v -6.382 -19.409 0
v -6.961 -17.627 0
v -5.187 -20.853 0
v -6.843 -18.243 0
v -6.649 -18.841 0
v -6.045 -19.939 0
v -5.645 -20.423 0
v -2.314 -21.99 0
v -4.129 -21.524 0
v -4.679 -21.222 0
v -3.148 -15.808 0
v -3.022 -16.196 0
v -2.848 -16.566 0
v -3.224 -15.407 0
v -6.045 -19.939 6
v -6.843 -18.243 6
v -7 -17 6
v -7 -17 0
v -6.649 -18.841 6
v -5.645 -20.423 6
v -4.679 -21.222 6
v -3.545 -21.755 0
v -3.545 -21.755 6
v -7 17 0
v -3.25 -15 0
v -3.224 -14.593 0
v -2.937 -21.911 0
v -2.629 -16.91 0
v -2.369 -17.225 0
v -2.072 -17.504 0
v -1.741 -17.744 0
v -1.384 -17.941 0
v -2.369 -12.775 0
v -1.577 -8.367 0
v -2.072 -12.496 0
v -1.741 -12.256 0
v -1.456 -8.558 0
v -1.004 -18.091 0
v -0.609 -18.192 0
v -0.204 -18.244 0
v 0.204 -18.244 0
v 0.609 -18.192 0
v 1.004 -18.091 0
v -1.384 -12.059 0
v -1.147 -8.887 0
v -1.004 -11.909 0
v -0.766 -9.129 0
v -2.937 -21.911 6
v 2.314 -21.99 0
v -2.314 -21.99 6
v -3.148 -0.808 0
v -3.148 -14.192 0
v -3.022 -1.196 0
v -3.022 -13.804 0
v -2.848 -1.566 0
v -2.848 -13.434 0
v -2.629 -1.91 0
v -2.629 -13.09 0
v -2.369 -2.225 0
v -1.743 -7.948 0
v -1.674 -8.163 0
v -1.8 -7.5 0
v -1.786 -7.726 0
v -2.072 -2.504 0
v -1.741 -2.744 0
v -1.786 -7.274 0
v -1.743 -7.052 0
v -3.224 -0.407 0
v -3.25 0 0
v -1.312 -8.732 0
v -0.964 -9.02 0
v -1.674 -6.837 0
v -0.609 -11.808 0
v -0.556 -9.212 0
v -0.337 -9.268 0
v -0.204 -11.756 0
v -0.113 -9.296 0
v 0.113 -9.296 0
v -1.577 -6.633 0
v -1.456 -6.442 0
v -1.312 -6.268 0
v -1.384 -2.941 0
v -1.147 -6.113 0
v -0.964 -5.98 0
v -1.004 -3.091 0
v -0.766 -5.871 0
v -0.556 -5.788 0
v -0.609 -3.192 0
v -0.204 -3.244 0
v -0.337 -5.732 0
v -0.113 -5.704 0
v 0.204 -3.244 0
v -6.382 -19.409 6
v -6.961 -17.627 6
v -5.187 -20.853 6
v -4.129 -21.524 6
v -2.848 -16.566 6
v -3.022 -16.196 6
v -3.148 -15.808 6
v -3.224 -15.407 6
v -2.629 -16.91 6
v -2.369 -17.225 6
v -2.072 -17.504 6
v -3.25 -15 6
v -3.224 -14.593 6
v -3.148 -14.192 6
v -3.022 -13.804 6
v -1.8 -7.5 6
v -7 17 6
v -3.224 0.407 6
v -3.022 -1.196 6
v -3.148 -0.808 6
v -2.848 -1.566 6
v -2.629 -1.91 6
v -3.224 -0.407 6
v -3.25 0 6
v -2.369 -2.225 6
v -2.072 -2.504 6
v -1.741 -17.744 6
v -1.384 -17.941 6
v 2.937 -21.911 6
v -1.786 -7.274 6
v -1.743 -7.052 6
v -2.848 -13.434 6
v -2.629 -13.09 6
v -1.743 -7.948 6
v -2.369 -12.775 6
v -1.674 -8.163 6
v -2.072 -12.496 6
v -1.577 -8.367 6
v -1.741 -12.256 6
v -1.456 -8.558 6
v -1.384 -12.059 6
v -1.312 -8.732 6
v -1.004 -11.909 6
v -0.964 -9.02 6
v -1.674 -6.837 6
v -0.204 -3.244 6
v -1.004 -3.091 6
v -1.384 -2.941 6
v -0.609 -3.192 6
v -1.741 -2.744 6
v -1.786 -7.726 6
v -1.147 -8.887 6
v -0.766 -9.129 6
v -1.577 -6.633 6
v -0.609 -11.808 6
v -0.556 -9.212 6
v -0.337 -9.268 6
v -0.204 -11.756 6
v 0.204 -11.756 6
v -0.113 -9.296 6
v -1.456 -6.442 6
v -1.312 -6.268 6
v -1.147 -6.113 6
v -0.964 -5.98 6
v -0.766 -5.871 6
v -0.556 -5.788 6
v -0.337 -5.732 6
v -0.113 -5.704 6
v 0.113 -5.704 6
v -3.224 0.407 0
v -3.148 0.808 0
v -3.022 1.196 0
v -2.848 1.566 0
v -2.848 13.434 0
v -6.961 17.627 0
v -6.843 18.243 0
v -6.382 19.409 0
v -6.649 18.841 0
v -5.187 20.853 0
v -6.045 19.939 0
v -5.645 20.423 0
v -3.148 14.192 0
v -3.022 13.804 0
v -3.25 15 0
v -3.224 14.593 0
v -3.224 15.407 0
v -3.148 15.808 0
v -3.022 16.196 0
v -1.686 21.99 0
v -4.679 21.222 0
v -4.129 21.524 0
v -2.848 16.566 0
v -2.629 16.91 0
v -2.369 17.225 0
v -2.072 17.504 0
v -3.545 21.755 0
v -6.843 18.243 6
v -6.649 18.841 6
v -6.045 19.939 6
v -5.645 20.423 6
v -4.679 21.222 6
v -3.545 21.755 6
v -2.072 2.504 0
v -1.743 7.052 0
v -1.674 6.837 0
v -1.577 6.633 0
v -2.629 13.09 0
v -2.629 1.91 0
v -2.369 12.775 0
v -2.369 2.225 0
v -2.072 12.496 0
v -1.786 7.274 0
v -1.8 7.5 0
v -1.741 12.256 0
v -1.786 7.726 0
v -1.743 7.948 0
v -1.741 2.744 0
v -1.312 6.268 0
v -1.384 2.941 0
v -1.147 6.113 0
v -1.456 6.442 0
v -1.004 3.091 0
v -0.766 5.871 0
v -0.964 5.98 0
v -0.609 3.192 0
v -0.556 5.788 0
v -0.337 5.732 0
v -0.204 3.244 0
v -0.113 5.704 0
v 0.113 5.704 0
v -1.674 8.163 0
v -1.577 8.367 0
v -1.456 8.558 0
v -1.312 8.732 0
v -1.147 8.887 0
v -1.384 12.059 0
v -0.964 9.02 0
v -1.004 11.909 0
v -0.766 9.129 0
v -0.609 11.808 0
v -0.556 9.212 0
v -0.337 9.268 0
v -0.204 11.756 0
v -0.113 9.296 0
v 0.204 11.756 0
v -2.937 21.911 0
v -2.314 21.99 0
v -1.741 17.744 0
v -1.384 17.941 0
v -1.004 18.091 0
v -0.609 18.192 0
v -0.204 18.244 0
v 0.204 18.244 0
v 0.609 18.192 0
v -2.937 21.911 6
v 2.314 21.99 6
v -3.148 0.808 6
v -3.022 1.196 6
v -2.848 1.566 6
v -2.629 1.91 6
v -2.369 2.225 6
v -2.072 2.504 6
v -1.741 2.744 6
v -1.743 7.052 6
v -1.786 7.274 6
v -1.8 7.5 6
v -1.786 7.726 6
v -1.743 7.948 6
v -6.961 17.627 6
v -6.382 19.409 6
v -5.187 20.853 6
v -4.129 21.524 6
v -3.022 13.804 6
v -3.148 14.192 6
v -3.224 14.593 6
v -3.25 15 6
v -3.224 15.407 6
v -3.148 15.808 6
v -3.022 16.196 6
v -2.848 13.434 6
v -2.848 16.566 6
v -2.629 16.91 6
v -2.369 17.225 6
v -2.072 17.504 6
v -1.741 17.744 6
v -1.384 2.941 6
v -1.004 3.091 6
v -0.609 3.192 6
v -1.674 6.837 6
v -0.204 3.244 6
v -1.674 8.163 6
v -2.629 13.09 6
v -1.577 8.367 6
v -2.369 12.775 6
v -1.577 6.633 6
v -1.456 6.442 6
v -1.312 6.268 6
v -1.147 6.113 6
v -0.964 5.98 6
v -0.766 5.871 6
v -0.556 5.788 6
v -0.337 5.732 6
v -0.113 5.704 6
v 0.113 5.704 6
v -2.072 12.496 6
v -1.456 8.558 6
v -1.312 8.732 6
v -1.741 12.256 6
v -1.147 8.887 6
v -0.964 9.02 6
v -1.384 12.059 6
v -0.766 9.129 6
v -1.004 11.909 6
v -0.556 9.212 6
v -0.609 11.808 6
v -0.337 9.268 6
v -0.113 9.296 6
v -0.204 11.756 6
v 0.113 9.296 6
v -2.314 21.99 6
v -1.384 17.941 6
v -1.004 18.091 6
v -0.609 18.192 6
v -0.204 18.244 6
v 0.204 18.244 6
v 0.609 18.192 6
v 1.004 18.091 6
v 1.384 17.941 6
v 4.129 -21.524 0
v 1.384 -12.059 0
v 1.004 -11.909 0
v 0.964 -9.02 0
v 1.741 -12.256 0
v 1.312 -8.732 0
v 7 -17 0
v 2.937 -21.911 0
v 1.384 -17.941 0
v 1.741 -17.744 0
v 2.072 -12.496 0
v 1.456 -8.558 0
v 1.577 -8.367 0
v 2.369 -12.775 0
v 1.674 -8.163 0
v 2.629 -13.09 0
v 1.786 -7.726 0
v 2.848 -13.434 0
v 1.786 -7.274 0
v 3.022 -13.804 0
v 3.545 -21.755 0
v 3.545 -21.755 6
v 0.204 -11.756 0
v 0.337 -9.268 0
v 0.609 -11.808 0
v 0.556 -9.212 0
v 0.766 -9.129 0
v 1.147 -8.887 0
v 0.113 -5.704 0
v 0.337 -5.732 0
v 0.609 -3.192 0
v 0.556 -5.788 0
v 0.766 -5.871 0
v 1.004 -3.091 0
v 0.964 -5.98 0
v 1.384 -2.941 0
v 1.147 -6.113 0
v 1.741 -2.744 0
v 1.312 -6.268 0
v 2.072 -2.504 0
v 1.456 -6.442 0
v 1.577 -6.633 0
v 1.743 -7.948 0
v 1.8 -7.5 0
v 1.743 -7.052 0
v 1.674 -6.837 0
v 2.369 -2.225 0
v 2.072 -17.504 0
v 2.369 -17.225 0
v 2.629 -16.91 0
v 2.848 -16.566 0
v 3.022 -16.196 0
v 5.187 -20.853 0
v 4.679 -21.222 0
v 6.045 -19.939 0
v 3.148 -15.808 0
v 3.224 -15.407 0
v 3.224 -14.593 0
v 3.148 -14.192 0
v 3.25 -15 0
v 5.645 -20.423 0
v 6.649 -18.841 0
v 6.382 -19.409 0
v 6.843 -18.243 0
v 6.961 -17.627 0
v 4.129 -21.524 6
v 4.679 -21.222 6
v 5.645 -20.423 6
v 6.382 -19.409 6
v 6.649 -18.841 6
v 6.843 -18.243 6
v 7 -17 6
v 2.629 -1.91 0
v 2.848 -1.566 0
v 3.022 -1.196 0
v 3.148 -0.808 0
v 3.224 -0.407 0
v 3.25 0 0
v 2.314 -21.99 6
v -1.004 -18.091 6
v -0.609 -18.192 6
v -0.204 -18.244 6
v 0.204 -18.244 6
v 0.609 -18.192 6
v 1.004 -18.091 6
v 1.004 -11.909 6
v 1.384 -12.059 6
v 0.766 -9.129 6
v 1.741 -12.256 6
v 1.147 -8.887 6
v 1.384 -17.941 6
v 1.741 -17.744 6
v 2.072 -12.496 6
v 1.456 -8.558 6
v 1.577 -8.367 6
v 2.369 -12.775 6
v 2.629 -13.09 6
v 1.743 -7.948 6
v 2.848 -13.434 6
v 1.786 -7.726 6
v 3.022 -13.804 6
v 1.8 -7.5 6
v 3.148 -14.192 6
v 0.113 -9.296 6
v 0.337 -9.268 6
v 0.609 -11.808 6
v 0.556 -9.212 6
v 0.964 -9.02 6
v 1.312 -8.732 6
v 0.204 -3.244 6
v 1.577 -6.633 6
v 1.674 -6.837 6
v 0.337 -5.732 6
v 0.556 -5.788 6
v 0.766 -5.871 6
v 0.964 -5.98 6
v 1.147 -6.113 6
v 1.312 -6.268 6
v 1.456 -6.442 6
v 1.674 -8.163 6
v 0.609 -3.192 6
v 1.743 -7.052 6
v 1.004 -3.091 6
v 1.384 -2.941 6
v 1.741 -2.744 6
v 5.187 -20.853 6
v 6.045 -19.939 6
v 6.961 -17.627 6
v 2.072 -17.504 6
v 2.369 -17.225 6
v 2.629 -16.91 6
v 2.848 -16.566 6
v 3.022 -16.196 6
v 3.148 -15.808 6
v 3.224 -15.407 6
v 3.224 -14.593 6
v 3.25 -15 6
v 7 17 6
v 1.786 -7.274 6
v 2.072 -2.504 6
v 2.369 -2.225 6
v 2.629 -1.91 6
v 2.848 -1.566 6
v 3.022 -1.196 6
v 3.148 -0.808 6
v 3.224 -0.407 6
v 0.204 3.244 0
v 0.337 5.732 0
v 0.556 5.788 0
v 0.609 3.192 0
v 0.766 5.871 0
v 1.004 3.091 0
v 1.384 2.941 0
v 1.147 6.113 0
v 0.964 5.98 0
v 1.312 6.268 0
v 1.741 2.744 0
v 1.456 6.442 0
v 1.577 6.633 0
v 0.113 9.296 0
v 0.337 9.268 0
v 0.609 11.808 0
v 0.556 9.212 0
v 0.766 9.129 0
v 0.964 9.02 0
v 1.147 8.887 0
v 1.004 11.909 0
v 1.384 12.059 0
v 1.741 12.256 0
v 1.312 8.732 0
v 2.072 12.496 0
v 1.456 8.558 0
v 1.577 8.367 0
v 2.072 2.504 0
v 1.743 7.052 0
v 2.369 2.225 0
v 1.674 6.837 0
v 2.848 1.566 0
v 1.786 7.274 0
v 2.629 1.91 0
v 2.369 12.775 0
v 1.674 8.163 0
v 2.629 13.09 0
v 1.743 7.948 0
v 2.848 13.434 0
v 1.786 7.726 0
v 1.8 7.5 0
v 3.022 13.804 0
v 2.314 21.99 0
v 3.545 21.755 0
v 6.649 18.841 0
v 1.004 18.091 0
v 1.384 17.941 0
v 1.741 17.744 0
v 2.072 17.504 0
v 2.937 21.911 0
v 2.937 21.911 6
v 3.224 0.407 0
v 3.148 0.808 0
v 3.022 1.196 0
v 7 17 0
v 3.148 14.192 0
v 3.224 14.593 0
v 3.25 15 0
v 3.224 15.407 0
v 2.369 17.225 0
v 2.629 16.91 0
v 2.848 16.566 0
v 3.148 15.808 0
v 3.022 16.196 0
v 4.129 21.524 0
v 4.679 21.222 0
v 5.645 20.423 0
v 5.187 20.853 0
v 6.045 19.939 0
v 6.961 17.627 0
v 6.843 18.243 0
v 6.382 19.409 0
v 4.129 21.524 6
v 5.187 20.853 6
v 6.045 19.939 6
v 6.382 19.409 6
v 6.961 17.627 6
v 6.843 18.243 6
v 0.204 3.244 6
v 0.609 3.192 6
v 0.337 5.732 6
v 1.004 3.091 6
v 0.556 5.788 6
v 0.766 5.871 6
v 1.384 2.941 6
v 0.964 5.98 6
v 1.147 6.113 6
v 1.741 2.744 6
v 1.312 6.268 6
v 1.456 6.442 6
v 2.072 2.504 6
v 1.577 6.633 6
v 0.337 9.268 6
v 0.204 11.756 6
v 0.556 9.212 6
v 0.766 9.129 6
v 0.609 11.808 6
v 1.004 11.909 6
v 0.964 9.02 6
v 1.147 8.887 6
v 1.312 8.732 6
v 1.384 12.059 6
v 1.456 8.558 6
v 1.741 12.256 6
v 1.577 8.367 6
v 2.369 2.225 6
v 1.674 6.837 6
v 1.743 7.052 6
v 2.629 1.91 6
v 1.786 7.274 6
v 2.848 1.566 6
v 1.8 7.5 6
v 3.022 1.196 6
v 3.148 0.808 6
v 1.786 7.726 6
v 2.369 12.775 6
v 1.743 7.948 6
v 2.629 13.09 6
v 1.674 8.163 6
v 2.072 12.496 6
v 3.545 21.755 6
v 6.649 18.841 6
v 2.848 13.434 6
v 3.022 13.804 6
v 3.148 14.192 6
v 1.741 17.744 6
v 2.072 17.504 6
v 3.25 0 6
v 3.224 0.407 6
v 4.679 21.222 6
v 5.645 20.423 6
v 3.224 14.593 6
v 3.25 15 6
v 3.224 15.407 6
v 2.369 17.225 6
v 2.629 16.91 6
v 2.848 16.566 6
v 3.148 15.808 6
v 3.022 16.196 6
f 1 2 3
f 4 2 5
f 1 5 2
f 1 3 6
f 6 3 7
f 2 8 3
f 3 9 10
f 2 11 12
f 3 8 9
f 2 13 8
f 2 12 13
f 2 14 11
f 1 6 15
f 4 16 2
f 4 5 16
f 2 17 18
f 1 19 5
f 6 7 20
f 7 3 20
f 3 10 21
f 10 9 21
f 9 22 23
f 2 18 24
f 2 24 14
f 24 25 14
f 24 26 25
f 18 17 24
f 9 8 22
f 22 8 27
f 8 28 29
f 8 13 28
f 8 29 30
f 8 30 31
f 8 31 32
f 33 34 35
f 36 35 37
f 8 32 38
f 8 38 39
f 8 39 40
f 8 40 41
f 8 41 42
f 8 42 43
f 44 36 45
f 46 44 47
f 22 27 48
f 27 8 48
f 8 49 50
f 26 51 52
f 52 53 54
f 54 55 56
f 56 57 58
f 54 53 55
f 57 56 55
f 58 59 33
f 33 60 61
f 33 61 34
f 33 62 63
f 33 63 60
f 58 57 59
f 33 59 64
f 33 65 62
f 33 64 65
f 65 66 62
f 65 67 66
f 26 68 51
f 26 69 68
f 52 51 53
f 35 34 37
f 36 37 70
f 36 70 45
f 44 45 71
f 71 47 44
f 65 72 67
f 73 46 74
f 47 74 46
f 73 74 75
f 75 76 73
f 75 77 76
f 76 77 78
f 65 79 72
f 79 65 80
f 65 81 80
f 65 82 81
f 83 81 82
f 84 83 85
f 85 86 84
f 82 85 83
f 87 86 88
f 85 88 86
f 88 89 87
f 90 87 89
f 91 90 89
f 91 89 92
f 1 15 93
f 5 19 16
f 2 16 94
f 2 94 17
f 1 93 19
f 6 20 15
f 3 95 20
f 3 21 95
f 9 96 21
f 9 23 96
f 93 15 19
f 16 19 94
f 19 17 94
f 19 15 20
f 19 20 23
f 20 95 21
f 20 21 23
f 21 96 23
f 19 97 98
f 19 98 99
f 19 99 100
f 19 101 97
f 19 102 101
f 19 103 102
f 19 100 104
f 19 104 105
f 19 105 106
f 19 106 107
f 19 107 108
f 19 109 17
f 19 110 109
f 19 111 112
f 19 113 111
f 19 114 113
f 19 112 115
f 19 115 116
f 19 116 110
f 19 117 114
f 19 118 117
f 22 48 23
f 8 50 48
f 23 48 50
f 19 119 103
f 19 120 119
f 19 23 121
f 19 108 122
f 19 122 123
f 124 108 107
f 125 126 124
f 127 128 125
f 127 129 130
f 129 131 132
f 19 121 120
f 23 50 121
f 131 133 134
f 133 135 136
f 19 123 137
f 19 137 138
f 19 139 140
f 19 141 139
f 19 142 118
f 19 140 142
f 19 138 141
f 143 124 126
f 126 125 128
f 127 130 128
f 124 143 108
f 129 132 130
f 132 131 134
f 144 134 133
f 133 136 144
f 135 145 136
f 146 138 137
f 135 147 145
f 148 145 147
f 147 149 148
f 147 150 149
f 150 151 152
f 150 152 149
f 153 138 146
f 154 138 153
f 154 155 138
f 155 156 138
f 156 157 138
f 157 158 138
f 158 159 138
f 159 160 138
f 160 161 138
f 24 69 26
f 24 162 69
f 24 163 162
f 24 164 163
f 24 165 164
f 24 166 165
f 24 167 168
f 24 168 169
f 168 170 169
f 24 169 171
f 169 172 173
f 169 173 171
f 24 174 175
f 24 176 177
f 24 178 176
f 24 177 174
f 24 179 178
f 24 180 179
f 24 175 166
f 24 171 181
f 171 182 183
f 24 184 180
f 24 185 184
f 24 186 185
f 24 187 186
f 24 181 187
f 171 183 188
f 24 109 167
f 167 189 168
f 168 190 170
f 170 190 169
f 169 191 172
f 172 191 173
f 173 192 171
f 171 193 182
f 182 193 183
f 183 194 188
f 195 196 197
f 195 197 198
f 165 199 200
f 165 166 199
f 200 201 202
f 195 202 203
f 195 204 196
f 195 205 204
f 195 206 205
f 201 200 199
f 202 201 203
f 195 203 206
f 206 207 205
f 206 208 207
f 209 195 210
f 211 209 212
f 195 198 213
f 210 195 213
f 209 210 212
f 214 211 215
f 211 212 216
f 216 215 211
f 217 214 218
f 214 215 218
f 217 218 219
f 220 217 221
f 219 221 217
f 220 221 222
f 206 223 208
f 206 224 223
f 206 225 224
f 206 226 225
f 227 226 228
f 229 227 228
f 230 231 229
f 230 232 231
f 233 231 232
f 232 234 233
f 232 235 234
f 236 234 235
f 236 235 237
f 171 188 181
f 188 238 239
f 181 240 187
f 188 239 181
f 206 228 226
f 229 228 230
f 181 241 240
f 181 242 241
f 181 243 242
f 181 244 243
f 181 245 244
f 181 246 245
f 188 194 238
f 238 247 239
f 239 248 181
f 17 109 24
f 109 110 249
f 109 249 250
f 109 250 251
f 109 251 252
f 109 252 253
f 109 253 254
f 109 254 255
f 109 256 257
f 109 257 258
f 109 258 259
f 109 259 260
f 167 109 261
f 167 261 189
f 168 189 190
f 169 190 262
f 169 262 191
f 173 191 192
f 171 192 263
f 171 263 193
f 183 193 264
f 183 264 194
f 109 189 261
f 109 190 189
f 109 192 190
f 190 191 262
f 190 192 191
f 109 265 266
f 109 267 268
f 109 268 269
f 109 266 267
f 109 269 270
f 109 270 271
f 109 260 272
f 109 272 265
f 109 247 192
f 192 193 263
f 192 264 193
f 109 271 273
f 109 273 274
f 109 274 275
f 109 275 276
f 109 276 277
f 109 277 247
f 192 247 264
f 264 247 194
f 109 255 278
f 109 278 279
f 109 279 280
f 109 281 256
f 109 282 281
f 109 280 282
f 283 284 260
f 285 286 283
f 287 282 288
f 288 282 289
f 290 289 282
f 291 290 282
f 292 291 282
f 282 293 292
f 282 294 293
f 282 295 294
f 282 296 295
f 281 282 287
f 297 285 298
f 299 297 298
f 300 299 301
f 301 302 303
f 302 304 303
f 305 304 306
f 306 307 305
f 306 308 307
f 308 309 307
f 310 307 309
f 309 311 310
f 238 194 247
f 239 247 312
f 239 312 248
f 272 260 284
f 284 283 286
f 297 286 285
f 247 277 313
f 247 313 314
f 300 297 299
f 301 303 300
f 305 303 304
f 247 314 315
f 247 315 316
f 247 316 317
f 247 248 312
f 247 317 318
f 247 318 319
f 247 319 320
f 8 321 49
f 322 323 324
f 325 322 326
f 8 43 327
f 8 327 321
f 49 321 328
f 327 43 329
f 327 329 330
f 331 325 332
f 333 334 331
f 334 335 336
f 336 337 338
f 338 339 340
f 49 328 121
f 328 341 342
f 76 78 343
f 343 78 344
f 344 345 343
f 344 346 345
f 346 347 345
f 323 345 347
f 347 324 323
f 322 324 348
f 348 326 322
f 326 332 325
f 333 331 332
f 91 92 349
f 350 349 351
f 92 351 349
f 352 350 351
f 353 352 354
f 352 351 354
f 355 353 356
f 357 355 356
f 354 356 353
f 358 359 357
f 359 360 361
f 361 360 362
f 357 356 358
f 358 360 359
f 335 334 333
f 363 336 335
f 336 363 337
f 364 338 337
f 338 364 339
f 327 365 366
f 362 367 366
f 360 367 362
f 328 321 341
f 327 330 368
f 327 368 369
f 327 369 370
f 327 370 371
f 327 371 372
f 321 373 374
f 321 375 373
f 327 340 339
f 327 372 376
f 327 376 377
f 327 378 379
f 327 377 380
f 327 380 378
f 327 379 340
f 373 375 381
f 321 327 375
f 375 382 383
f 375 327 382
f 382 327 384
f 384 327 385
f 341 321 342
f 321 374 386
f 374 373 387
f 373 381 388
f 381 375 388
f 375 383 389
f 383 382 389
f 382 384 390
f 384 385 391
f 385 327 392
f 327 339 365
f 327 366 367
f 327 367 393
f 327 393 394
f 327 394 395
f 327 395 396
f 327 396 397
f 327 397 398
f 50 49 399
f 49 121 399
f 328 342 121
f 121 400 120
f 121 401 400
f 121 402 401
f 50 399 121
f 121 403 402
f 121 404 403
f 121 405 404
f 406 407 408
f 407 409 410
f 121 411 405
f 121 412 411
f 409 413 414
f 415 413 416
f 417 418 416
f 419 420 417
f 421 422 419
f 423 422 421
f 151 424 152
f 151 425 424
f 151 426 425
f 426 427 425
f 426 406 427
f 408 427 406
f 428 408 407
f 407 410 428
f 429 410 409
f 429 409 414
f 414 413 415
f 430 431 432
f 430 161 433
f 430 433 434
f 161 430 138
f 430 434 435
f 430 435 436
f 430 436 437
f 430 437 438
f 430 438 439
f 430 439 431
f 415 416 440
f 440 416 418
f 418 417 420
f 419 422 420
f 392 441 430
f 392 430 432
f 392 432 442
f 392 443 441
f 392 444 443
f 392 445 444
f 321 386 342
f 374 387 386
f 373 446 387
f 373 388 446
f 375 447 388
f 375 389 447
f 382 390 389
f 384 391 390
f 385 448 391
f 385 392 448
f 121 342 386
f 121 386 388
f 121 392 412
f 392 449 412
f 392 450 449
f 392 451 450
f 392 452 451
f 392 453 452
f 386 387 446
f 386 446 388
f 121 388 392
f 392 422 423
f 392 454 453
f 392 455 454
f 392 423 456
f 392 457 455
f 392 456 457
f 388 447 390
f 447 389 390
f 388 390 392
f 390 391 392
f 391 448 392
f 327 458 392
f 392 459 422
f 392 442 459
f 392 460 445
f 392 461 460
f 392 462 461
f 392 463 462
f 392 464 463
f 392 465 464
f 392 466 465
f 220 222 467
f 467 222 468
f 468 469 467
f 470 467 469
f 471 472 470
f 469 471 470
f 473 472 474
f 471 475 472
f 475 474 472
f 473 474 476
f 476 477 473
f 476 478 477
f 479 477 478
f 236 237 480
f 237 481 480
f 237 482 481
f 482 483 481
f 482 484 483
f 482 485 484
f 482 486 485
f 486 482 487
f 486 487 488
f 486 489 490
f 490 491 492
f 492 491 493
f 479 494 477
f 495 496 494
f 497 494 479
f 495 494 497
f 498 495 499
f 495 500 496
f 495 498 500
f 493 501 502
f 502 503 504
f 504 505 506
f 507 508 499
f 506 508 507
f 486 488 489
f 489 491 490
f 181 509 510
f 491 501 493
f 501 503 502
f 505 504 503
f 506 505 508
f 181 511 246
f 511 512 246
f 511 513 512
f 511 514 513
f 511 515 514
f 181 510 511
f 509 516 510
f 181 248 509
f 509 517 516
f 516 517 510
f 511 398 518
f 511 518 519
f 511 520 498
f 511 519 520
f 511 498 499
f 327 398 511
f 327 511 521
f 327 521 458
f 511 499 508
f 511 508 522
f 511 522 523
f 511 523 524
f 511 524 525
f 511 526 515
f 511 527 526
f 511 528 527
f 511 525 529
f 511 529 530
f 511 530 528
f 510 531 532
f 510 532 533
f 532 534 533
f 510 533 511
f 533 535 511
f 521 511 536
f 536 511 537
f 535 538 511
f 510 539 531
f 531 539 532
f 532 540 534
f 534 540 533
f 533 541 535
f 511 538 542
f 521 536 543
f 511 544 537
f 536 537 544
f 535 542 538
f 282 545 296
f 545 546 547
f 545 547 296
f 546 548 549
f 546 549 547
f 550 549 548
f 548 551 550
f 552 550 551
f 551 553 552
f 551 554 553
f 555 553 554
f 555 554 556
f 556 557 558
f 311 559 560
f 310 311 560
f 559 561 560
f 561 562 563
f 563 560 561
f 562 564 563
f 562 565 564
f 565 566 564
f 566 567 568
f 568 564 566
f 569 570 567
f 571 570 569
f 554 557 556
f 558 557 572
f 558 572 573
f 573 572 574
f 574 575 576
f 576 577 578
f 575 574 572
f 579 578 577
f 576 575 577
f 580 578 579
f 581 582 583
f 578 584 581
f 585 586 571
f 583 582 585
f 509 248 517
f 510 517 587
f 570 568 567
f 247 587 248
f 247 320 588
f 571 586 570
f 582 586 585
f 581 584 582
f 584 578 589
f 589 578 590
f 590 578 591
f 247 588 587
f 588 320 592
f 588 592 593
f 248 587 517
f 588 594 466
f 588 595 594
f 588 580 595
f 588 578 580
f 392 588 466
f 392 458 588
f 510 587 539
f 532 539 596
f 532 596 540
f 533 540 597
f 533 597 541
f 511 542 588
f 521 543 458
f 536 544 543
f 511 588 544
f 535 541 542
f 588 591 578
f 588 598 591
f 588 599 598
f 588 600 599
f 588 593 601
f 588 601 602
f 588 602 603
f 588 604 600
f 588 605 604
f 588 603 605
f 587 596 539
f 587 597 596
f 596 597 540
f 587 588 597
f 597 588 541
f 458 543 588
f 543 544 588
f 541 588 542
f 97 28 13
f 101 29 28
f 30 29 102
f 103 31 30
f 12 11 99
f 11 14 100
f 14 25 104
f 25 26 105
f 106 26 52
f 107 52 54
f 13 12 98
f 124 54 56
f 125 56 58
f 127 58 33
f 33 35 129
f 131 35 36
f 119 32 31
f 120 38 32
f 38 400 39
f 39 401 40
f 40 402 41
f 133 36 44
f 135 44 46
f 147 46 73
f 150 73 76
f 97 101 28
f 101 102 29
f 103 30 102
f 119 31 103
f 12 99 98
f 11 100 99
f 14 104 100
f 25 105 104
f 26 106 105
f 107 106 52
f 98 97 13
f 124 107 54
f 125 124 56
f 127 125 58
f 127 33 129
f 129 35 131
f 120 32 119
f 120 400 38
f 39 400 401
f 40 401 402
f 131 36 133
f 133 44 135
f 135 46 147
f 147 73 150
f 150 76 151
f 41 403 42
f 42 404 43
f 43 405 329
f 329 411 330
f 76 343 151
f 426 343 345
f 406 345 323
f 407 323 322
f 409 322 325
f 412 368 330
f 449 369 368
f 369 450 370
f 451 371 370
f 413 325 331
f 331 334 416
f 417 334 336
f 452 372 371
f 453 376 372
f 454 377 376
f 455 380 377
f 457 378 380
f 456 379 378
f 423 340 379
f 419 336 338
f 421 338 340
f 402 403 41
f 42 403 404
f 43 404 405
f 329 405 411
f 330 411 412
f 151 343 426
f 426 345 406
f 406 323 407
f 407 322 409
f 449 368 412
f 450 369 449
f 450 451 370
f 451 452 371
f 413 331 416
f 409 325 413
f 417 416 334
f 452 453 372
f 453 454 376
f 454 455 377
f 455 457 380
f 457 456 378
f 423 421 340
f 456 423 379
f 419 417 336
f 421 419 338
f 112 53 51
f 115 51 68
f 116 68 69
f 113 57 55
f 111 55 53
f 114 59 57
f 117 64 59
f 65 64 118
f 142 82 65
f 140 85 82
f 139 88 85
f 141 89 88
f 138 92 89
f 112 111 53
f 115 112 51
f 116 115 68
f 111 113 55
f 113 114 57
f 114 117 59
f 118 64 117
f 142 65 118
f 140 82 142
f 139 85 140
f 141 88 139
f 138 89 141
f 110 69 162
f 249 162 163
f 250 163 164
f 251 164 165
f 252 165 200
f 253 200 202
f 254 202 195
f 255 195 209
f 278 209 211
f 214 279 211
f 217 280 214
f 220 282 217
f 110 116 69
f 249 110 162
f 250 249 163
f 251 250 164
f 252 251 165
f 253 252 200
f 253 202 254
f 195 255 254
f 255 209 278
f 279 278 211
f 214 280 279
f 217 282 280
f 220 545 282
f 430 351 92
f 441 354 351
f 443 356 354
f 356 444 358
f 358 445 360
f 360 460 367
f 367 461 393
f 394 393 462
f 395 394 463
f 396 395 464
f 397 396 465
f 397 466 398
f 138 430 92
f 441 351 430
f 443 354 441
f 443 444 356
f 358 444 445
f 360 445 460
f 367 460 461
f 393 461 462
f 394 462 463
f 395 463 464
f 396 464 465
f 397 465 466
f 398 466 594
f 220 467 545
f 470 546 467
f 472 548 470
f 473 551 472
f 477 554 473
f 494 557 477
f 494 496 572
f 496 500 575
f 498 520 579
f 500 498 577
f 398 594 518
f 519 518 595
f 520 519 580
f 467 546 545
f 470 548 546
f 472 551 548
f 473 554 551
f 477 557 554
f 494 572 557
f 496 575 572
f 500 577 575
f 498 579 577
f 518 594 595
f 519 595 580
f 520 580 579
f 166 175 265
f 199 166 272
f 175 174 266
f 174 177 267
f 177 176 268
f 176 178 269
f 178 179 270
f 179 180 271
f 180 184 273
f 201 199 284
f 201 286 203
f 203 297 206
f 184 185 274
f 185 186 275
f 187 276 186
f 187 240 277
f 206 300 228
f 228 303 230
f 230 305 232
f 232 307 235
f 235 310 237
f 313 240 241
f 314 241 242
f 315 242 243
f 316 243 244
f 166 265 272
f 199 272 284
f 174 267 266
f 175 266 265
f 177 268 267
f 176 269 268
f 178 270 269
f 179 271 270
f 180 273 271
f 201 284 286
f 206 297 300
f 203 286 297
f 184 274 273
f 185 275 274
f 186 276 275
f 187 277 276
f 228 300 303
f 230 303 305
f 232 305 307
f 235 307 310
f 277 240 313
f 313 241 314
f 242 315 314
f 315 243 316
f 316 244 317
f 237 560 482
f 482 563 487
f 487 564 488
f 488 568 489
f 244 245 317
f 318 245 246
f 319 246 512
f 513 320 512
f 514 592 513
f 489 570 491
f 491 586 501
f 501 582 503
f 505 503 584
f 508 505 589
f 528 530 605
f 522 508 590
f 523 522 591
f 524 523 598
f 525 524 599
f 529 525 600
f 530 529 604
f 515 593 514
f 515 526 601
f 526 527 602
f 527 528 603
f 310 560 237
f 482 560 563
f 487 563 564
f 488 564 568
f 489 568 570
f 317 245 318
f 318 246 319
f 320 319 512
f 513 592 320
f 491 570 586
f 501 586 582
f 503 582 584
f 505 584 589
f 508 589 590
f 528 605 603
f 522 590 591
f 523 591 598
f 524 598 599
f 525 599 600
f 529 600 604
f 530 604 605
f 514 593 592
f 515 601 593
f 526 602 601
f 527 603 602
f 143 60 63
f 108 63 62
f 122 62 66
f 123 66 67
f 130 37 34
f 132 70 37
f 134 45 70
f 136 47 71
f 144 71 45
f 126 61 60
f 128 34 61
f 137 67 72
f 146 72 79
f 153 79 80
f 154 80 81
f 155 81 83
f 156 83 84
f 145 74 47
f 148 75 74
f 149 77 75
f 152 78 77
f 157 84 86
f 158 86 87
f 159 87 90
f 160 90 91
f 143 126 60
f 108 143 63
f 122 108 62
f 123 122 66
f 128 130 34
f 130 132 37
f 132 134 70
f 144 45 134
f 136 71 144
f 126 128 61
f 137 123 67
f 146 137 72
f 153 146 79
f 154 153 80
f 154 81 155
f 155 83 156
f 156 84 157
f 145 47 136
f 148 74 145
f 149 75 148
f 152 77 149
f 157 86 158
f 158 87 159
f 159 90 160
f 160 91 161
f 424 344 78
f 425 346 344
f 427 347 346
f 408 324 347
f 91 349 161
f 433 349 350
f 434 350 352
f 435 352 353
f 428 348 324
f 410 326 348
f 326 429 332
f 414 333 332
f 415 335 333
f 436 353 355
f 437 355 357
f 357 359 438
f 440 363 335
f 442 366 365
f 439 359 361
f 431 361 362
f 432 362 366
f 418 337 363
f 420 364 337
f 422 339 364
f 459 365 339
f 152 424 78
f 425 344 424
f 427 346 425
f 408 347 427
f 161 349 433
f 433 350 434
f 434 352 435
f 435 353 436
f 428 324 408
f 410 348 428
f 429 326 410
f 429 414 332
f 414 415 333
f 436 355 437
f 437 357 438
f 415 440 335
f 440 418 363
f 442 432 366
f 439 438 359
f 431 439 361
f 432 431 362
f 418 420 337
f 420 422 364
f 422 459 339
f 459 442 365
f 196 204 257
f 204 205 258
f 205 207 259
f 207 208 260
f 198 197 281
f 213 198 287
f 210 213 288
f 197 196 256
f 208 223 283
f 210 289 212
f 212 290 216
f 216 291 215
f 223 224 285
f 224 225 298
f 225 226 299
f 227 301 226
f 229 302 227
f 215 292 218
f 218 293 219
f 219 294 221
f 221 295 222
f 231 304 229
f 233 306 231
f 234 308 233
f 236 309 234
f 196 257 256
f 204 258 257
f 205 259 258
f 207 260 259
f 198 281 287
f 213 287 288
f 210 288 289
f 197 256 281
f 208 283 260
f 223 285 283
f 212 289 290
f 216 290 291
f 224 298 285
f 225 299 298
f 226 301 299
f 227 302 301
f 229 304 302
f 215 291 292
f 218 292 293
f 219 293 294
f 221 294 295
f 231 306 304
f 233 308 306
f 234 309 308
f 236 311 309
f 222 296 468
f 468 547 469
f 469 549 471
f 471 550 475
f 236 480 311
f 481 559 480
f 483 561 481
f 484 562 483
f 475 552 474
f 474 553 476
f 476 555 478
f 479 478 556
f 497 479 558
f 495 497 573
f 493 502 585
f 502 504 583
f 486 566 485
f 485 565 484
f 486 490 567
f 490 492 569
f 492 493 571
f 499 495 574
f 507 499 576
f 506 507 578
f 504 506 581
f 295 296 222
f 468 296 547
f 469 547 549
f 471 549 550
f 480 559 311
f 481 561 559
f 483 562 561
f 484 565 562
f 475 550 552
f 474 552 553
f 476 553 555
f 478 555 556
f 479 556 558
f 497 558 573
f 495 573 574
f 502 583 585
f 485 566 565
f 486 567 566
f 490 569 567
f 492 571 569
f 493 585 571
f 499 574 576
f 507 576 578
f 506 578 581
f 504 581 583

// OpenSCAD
$fn = 50;

difference() {
	union() {
		hull() {
			translate(v = [-2.0, 17.0, 0]) {
				cylinder(h = 6, r = 5);
			}
			translate(v = [2.0, 17.0, 0]) {
				cylinder(h = 6, r = 5);
			}
			translate(v = [-2.0, -17.0, 0]) {
				cylinder(h = 6, r = 5);
			}
			translate(v = [2.0, -17.0, 0]) {
				cylinder(h = 6, r = 5);
			}
		}
	}
	union() {
		translate(v = [0.0, -15.0, 0]) {
			translate(v = [0, 0, -100]) {
				cylinder(h = 200, r = 3.25);
			}
		}
		translate(v = [0, 0, -100]) {
			cylinder(h = 200, r = 3.25);
		}
		translate(v = [0.0, 15.0, 0]) {
			translate(v = [0, 0, -100]) {
				cylinder(h = 200, r = 3.25);
			}
		}
		translate(v = [0.0, -15.0, 0]) {
			translate(v = [0, 0, -100]) {
				cylinder(h = 200, r = 1.8);
			}
		}
		translate(v = [0.0, -7.5, 0]) {
			translate(v = [0, 0, -100]) {
				cylinder(h = 200, r = 1.8);
			}
		}
		translate(v = [0, 0, -100]) {
			cylinder(h = 200, r = 1.8);
		}
		translate(v = [0.0, 7.5, 0]) {
			translate(v = [0, 0, -100]) {
				cylinder(h = 200, r = 1.8);
			}
		}
		translate(v = [0.0, 15.0, 0]) {
			translate(v = [0, 0, -100]) {
				cylinder(h = 200, r = 1.8);
			}
		}
	}
}
